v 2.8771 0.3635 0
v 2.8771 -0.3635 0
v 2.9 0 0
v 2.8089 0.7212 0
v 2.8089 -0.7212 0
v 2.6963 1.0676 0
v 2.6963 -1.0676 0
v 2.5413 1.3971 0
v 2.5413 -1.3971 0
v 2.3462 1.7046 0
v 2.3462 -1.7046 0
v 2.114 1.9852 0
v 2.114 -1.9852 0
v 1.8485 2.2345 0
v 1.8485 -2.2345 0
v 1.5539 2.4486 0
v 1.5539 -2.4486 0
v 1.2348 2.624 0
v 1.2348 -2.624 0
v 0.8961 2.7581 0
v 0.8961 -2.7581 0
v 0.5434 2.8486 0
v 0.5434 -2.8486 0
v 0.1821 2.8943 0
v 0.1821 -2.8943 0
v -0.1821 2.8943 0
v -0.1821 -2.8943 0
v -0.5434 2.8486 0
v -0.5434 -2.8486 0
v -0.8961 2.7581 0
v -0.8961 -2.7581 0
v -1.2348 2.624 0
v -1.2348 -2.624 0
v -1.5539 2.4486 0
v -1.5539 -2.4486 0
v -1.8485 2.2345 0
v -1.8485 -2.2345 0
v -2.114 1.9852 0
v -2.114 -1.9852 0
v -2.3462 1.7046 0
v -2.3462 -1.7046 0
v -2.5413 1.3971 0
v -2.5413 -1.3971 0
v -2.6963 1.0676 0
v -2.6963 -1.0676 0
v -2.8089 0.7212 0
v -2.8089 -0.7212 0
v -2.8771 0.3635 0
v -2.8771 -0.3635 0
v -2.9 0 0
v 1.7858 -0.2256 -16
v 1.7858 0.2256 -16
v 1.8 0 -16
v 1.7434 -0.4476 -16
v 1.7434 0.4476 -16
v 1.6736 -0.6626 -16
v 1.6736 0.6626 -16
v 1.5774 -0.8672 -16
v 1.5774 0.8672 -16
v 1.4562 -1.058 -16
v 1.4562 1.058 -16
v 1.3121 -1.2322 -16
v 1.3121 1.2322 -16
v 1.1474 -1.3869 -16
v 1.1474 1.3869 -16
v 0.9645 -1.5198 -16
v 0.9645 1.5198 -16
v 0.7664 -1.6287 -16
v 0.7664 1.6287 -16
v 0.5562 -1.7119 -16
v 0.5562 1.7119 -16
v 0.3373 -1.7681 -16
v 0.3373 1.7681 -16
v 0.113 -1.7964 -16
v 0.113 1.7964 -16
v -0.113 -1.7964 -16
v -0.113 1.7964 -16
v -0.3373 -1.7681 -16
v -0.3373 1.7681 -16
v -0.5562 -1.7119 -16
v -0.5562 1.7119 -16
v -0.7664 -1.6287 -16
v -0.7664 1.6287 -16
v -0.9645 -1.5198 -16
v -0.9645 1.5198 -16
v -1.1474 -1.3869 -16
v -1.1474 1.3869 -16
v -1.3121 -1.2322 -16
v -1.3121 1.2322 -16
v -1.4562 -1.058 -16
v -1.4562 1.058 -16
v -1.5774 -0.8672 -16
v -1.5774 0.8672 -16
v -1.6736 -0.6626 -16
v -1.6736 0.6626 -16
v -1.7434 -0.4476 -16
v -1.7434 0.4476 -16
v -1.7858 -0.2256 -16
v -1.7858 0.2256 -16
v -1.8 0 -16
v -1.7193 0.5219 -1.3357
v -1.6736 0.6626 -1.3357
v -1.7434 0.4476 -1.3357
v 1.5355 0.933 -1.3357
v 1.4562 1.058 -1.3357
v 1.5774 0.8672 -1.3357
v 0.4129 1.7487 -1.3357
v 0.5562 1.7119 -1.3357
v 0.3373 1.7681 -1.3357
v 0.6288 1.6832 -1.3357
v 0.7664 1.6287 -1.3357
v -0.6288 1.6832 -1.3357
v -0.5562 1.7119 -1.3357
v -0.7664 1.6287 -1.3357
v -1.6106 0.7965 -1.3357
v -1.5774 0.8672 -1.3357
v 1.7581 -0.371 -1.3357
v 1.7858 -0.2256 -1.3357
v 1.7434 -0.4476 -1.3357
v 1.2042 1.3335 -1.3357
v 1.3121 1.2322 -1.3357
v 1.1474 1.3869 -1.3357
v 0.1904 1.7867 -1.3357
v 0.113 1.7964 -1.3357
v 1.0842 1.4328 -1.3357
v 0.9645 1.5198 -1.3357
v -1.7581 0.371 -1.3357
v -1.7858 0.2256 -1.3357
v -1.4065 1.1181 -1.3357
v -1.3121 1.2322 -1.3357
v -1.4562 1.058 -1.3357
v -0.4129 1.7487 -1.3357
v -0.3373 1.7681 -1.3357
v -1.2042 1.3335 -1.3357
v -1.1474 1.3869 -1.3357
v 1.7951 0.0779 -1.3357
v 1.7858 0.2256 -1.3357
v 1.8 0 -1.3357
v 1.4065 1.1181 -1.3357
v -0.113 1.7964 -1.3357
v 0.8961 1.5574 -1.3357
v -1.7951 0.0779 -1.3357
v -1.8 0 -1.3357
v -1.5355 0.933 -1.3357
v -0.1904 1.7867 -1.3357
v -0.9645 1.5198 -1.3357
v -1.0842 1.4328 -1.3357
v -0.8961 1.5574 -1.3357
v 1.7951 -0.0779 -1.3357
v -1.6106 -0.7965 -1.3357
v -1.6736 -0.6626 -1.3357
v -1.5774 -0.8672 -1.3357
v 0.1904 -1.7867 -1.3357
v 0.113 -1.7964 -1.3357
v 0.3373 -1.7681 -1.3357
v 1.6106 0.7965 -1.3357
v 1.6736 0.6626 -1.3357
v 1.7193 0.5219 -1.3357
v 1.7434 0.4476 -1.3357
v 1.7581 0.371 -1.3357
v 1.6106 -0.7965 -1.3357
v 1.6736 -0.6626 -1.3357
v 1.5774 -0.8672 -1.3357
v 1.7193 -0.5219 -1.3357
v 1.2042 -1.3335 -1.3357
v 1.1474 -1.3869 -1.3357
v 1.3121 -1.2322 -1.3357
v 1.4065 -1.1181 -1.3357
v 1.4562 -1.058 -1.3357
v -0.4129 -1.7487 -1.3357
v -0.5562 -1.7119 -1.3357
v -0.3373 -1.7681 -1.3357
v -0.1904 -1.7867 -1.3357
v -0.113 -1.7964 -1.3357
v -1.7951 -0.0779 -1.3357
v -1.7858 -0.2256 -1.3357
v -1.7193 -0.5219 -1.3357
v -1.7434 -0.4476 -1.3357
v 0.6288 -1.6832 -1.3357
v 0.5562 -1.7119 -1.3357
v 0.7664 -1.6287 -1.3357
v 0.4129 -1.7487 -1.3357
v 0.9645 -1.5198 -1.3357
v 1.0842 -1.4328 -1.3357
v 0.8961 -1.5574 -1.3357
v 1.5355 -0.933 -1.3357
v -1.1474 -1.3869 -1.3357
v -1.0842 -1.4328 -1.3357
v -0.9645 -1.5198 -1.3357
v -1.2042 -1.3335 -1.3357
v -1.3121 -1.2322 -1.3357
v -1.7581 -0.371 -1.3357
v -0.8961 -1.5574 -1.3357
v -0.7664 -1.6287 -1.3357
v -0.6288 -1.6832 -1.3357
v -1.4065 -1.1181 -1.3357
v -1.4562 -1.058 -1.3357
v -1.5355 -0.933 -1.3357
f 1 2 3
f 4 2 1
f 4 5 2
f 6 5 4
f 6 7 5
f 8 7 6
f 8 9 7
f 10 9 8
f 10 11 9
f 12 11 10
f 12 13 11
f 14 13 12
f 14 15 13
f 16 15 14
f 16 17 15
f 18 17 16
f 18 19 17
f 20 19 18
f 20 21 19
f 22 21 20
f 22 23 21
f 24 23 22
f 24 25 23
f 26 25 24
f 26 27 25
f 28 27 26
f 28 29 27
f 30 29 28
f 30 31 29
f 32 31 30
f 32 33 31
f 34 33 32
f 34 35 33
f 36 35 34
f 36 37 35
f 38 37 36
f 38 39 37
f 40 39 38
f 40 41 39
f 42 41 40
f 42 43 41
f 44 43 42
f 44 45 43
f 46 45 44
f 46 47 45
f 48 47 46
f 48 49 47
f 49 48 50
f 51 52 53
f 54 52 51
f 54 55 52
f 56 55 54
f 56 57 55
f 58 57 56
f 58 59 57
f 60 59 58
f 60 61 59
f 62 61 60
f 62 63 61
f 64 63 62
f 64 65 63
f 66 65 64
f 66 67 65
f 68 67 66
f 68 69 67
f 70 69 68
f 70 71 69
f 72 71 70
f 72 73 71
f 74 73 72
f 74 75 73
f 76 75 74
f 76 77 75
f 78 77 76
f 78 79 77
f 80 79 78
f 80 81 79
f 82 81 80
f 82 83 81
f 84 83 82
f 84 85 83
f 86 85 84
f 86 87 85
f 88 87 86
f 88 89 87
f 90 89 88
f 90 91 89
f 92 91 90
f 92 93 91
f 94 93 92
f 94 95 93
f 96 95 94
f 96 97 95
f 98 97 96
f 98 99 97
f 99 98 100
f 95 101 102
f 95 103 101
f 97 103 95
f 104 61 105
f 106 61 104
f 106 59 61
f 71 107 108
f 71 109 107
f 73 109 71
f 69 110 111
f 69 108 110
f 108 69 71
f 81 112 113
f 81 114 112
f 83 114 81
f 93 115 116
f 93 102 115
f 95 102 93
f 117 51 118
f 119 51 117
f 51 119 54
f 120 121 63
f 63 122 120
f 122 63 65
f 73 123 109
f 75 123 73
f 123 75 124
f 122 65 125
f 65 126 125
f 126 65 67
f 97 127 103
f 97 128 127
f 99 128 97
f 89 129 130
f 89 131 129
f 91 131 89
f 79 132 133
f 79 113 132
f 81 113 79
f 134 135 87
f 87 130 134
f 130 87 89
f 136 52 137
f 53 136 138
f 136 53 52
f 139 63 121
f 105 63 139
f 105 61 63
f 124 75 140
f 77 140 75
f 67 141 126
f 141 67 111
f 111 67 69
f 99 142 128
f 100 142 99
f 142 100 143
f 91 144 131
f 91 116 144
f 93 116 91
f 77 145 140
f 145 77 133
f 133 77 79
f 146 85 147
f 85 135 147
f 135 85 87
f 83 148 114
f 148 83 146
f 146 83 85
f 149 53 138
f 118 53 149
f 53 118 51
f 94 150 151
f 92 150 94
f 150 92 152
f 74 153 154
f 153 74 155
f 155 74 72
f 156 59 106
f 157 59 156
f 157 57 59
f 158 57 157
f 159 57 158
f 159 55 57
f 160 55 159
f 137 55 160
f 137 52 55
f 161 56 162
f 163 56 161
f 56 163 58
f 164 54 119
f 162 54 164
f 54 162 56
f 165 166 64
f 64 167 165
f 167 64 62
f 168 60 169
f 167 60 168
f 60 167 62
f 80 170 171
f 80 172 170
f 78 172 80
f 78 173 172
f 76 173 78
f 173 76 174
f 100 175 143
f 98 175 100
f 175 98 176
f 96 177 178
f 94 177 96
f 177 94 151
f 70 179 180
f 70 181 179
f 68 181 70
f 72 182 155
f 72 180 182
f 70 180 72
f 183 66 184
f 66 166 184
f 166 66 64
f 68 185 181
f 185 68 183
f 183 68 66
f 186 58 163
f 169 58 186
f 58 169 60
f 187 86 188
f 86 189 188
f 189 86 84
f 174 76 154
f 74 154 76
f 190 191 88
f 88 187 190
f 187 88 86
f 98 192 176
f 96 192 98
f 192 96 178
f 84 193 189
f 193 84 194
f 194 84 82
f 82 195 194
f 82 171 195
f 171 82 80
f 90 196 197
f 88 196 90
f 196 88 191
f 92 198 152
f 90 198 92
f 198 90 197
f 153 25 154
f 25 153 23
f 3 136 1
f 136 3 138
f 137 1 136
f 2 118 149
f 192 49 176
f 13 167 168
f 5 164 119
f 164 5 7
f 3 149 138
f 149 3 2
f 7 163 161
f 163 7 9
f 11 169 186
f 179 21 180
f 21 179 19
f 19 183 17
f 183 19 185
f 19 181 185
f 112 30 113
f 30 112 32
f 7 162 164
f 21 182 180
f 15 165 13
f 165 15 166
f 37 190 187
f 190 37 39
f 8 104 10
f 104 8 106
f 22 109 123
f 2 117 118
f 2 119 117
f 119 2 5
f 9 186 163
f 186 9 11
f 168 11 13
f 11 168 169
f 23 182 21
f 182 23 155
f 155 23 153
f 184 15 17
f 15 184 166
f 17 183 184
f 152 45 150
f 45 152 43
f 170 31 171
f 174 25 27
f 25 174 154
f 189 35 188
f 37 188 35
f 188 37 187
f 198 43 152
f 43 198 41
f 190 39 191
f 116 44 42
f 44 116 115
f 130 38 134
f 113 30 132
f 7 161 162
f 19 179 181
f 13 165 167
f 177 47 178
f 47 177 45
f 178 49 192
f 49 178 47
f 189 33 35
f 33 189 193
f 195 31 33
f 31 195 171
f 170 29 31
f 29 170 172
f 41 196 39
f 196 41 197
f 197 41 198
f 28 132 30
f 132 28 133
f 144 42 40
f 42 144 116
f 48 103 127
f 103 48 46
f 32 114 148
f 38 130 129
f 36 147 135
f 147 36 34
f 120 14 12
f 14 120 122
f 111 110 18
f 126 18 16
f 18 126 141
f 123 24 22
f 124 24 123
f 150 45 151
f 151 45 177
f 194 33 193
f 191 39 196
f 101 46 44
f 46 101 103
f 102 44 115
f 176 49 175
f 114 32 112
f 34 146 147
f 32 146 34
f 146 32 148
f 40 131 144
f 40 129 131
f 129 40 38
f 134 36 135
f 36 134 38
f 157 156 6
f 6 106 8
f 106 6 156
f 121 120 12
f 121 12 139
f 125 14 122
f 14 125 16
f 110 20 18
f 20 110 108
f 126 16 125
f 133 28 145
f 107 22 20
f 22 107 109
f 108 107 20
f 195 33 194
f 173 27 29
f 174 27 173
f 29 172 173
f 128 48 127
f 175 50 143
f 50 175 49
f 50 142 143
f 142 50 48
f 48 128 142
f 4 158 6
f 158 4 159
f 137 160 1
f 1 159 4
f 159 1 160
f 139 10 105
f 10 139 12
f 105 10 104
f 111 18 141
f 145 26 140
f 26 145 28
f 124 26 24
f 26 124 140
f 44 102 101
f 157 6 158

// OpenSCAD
$fn = 50;


difference() {
	union() {
		translate(v = [0, 0, 0]) {
			rotate(a = [0, 0, 0]) {
				difference() {
					union() {
						translate(v = [0, 0, -16.0000000000]) {
							cylinder(h = 16, r = 1.5000000000);
						}
						translate(v = [0, 0, -16.0000000000]) {
							cylinder(h = 16, r = 1.8000000000);
						}
						translate(v = [0, 0, -1.7000000000]) {
							cylinder(h = 1.7000000000, r1 = 1.5000000000, r2 = 2.9000000000);
						}
						translate(v = [0, 0, -16.0000000000]) {
							cylinder(h = 16, r = 1.5000000000);
						}
					}
					union();
				}
			}
		}
	}
	union();
}
